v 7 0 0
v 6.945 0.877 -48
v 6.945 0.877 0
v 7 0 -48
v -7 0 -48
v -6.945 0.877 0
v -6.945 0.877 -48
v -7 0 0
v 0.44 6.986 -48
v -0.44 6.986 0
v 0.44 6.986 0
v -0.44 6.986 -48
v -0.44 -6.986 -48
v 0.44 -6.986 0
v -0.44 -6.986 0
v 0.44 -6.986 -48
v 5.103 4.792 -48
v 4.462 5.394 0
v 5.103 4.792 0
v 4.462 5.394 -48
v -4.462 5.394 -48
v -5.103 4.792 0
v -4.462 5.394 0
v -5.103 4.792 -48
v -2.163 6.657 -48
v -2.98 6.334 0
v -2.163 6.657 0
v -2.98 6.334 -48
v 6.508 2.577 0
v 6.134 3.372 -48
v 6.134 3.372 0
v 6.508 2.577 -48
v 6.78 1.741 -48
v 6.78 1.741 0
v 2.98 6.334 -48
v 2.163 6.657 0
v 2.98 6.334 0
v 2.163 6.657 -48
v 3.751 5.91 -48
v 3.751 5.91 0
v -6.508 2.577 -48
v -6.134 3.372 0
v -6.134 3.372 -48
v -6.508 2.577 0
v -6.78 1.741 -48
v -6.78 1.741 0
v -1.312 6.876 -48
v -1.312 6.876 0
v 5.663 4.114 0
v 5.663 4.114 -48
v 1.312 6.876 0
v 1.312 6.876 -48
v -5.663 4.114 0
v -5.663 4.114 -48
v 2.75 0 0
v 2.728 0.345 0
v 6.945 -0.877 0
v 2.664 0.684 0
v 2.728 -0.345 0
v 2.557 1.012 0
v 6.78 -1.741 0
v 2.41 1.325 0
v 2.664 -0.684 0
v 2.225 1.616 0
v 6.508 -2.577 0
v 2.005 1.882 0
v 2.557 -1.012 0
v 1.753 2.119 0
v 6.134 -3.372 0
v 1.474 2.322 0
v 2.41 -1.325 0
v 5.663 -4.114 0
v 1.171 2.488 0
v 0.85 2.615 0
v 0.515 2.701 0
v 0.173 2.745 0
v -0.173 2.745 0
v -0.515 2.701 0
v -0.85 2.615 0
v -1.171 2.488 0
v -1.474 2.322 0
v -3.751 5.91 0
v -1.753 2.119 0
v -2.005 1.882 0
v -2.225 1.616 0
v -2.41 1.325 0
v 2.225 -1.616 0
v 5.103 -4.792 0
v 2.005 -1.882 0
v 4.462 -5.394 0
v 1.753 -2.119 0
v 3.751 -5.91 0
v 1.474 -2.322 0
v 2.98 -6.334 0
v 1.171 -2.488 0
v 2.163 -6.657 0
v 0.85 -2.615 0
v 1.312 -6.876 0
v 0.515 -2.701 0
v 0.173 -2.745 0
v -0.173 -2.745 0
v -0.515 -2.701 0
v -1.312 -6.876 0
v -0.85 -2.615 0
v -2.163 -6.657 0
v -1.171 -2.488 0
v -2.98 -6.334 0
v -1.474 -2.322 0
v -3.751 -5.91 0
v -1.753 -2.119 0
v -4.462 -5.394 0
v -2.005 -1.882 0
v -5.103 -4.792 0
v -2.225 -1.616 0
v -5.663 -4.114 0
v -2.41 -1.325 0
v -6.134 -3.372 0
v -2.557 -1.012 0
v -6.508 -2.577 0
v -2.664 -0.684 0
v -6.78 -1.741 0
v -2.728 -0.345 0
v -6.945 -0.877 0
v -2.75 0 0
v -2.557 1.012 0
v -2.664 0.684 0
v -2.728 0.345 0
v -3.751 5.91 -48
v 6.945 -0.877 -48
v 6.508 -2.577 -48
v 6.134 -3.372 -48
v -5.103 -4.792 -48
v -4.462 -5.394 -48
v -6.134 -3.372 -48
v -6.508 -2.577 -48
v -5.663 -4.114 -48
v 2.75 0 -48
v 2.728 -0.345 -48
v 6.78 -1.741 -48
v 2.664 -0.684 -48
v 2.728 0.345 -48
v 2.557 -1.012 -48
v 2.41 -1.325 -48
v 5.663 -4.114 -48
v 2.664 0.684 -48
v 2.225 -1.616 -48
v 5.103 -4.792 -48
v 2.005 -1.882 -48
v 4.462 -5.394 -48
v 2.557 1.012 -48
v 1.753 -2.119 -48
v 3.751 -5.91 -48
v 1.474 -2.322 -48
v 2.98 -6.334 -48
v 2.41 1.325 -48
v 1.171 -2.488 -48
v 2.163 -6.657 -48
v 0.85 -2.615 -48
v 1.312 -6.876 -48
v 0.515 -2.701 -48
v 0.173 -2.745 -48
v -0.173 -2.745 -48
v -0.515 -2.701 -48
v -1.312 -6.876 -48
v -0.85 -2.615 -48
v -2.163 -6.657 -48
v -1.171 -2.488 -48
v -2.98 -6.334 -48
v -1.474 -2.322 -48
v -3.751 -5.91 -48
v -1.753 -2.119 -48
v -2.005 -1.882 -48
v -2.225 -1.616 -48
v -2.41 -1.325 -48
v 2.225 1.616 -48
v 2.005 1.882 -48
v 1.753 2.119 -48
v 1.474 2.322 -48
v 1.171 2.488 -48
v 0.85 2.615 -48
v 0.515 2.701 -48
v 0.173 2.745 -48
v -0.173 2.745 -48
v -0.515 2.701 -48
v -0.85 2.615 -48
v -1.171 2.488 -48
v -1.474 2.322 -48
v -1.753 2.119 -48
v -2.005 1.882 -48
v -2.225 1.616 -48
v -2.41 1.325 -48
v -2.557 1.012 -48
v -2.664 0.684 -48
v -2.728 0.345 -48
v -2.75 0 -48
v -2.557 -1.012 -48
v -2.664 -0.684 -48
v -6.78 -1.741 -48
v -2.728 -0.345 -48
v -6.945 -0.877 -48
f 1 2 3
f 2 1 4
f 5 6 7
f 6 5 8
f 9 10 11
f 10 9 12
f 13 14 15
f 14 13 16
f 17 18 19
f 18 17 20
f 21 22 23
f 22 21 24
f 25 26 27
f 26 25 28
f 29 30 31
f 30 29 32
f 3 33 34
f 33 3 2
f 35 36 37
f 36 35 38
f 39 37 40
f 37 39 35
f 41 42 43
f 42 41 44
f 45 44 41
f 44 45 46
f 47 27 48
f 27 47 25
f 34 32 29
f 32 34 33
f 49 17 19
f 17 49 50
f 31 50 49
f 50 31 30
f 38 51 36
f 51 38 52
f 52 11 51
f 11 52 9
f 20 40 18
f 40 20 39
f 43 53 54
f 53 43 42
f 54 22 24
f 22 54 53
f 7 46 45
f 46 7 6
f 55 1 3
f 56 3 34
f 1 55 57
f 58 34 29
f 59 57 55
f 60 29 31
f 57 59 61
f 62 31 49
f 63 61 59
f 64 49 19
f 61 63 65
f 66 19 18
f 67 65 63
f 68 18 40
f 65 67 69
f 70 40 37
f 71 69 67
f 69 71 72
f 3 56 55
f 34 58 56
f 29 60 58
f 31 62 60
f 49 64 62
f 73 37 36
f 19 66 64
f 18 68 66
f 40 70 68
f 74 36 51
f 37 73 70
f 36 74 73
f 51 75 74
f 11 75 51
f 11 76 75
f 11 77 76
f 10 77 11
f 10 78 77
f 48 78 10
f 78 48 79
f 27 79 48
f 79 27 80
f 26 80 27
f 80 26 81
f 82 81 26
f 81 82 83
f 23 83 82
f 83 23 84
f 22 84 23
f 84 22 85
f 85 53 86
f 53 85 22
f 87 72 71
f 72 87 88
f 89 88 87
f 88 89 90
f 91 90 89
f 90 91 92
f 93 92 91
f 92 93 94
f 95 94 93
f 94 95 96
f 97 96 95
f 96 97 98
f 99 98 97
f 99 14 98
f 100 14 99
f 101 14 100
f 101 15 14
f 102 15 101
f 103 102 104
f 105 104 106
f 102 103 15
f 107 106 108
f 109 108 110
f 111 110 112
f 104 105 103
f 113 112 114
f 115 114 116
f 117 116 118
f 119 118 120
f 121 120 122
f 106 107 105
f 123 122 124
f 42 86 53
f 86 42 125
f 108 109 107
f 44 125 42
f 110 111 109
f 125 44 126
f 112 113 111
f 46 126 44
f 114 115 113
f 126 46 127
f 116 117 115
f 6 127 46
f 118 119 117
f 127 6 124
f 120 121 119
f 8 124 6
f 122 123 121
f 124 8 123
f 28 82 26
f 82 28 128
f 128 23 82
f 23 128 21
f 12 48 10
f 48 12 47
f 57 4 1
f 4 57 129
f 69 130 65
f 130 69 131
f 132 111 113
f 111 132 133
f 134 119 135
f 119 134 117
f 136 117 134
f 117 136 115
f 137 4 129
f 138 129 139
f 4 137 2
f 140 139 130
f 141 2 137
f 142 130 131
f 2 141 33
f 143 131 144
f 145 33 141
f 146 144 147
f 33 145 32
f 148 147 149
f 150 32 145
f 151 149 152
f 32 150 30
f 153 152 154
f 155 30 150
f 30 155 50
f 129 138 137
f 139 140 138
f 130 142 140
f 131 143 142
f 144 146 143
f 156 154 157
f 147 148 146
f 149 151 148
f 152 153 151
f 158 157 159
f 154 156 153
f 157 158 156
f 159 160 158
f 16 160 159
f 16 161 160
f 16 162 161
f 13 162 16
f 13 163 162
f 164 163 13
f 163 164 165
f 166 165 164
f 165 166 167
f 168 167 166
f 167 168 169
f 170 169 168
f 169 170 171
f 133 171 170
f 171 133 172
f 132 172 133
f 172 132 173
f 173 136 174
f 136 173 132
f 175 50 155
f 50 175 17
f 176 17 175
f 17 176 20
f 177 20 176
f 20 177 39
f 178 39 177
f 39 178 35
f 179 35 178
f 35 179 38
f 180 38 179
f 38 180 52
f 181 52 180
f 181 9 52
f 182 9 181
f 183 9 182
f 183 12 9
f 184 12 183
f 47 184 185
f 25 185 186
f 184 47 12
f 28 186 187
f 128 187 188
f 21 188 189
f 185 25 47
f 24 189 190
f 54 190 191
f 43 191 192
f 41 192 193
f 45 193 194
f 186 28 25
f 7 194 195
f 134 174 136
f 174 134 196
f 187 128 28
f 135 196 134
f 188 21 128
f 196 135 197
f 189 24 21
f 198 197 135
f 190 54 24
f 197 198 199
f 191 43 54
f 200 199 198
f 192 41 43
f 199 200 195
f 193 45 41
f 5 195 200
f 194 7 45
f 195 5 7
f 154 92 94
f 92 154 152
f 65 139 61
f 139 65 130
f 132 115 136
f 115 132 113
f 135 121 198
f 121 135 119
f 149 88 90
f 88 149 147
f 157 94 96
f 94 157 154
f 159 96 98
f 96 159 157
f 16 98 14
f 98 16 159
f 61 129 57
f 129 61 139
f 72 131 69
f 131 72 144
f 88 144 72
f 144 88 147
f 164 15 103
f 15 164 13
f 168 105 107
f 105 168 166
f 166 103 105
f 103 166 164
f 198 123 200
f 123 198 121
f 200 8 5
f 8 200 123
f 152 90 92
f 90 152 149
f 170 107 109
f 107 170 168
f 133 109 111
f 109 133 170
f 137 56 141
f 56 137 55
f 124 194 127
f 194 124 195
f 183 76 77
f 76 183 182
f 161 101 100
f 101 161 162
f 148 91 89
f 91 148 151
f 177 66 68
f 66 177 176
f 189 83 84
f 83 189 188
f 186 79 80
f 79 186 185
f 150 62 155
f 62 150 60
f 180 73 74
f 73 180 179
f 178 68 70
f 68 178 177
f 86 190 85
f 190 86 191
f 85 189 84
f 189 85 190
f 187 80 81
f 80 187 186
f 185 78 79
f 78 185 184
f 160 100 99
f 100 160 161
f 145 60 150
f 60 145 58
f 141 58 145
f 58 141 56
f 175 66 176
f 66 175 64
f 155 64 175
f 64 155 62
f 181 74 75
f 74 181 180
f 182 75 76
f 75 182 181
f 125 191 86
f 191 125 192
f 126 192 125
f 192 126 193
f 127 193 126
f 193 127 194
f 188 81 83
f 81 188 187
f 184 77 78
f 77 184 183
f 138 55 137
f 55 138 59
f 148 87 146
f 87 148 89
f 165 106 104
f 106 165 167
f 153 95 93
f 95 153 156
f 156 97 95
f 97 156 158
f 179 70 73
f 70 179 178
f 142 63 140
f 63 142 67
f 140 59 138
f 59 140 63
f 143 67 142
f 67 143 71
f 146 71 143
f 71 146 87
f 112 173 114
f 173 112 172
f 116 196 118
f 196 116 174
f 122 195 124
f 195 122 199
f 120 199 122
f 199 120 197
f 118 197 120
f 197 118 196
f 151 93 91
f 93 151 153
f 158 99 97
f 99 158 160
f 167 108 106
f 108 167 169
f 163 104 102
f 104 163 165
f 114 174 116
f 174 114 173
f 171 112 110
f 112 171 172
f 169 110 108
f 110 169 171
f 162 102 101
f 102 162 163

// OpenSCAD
$fn = 50;


difference() {
	union() {
		translate(v = [0, 0, -48.0000000000]) {
			cylinder(h = 48, r = 7.0000000000);
		}
		cylinder(h = 0, r = 10.0000000000);
	}
	union() {
		#translate(v = [0, 0, -48]) {
			cylinder(h = 48, r = 2.7500000000);
		}
	}
}
